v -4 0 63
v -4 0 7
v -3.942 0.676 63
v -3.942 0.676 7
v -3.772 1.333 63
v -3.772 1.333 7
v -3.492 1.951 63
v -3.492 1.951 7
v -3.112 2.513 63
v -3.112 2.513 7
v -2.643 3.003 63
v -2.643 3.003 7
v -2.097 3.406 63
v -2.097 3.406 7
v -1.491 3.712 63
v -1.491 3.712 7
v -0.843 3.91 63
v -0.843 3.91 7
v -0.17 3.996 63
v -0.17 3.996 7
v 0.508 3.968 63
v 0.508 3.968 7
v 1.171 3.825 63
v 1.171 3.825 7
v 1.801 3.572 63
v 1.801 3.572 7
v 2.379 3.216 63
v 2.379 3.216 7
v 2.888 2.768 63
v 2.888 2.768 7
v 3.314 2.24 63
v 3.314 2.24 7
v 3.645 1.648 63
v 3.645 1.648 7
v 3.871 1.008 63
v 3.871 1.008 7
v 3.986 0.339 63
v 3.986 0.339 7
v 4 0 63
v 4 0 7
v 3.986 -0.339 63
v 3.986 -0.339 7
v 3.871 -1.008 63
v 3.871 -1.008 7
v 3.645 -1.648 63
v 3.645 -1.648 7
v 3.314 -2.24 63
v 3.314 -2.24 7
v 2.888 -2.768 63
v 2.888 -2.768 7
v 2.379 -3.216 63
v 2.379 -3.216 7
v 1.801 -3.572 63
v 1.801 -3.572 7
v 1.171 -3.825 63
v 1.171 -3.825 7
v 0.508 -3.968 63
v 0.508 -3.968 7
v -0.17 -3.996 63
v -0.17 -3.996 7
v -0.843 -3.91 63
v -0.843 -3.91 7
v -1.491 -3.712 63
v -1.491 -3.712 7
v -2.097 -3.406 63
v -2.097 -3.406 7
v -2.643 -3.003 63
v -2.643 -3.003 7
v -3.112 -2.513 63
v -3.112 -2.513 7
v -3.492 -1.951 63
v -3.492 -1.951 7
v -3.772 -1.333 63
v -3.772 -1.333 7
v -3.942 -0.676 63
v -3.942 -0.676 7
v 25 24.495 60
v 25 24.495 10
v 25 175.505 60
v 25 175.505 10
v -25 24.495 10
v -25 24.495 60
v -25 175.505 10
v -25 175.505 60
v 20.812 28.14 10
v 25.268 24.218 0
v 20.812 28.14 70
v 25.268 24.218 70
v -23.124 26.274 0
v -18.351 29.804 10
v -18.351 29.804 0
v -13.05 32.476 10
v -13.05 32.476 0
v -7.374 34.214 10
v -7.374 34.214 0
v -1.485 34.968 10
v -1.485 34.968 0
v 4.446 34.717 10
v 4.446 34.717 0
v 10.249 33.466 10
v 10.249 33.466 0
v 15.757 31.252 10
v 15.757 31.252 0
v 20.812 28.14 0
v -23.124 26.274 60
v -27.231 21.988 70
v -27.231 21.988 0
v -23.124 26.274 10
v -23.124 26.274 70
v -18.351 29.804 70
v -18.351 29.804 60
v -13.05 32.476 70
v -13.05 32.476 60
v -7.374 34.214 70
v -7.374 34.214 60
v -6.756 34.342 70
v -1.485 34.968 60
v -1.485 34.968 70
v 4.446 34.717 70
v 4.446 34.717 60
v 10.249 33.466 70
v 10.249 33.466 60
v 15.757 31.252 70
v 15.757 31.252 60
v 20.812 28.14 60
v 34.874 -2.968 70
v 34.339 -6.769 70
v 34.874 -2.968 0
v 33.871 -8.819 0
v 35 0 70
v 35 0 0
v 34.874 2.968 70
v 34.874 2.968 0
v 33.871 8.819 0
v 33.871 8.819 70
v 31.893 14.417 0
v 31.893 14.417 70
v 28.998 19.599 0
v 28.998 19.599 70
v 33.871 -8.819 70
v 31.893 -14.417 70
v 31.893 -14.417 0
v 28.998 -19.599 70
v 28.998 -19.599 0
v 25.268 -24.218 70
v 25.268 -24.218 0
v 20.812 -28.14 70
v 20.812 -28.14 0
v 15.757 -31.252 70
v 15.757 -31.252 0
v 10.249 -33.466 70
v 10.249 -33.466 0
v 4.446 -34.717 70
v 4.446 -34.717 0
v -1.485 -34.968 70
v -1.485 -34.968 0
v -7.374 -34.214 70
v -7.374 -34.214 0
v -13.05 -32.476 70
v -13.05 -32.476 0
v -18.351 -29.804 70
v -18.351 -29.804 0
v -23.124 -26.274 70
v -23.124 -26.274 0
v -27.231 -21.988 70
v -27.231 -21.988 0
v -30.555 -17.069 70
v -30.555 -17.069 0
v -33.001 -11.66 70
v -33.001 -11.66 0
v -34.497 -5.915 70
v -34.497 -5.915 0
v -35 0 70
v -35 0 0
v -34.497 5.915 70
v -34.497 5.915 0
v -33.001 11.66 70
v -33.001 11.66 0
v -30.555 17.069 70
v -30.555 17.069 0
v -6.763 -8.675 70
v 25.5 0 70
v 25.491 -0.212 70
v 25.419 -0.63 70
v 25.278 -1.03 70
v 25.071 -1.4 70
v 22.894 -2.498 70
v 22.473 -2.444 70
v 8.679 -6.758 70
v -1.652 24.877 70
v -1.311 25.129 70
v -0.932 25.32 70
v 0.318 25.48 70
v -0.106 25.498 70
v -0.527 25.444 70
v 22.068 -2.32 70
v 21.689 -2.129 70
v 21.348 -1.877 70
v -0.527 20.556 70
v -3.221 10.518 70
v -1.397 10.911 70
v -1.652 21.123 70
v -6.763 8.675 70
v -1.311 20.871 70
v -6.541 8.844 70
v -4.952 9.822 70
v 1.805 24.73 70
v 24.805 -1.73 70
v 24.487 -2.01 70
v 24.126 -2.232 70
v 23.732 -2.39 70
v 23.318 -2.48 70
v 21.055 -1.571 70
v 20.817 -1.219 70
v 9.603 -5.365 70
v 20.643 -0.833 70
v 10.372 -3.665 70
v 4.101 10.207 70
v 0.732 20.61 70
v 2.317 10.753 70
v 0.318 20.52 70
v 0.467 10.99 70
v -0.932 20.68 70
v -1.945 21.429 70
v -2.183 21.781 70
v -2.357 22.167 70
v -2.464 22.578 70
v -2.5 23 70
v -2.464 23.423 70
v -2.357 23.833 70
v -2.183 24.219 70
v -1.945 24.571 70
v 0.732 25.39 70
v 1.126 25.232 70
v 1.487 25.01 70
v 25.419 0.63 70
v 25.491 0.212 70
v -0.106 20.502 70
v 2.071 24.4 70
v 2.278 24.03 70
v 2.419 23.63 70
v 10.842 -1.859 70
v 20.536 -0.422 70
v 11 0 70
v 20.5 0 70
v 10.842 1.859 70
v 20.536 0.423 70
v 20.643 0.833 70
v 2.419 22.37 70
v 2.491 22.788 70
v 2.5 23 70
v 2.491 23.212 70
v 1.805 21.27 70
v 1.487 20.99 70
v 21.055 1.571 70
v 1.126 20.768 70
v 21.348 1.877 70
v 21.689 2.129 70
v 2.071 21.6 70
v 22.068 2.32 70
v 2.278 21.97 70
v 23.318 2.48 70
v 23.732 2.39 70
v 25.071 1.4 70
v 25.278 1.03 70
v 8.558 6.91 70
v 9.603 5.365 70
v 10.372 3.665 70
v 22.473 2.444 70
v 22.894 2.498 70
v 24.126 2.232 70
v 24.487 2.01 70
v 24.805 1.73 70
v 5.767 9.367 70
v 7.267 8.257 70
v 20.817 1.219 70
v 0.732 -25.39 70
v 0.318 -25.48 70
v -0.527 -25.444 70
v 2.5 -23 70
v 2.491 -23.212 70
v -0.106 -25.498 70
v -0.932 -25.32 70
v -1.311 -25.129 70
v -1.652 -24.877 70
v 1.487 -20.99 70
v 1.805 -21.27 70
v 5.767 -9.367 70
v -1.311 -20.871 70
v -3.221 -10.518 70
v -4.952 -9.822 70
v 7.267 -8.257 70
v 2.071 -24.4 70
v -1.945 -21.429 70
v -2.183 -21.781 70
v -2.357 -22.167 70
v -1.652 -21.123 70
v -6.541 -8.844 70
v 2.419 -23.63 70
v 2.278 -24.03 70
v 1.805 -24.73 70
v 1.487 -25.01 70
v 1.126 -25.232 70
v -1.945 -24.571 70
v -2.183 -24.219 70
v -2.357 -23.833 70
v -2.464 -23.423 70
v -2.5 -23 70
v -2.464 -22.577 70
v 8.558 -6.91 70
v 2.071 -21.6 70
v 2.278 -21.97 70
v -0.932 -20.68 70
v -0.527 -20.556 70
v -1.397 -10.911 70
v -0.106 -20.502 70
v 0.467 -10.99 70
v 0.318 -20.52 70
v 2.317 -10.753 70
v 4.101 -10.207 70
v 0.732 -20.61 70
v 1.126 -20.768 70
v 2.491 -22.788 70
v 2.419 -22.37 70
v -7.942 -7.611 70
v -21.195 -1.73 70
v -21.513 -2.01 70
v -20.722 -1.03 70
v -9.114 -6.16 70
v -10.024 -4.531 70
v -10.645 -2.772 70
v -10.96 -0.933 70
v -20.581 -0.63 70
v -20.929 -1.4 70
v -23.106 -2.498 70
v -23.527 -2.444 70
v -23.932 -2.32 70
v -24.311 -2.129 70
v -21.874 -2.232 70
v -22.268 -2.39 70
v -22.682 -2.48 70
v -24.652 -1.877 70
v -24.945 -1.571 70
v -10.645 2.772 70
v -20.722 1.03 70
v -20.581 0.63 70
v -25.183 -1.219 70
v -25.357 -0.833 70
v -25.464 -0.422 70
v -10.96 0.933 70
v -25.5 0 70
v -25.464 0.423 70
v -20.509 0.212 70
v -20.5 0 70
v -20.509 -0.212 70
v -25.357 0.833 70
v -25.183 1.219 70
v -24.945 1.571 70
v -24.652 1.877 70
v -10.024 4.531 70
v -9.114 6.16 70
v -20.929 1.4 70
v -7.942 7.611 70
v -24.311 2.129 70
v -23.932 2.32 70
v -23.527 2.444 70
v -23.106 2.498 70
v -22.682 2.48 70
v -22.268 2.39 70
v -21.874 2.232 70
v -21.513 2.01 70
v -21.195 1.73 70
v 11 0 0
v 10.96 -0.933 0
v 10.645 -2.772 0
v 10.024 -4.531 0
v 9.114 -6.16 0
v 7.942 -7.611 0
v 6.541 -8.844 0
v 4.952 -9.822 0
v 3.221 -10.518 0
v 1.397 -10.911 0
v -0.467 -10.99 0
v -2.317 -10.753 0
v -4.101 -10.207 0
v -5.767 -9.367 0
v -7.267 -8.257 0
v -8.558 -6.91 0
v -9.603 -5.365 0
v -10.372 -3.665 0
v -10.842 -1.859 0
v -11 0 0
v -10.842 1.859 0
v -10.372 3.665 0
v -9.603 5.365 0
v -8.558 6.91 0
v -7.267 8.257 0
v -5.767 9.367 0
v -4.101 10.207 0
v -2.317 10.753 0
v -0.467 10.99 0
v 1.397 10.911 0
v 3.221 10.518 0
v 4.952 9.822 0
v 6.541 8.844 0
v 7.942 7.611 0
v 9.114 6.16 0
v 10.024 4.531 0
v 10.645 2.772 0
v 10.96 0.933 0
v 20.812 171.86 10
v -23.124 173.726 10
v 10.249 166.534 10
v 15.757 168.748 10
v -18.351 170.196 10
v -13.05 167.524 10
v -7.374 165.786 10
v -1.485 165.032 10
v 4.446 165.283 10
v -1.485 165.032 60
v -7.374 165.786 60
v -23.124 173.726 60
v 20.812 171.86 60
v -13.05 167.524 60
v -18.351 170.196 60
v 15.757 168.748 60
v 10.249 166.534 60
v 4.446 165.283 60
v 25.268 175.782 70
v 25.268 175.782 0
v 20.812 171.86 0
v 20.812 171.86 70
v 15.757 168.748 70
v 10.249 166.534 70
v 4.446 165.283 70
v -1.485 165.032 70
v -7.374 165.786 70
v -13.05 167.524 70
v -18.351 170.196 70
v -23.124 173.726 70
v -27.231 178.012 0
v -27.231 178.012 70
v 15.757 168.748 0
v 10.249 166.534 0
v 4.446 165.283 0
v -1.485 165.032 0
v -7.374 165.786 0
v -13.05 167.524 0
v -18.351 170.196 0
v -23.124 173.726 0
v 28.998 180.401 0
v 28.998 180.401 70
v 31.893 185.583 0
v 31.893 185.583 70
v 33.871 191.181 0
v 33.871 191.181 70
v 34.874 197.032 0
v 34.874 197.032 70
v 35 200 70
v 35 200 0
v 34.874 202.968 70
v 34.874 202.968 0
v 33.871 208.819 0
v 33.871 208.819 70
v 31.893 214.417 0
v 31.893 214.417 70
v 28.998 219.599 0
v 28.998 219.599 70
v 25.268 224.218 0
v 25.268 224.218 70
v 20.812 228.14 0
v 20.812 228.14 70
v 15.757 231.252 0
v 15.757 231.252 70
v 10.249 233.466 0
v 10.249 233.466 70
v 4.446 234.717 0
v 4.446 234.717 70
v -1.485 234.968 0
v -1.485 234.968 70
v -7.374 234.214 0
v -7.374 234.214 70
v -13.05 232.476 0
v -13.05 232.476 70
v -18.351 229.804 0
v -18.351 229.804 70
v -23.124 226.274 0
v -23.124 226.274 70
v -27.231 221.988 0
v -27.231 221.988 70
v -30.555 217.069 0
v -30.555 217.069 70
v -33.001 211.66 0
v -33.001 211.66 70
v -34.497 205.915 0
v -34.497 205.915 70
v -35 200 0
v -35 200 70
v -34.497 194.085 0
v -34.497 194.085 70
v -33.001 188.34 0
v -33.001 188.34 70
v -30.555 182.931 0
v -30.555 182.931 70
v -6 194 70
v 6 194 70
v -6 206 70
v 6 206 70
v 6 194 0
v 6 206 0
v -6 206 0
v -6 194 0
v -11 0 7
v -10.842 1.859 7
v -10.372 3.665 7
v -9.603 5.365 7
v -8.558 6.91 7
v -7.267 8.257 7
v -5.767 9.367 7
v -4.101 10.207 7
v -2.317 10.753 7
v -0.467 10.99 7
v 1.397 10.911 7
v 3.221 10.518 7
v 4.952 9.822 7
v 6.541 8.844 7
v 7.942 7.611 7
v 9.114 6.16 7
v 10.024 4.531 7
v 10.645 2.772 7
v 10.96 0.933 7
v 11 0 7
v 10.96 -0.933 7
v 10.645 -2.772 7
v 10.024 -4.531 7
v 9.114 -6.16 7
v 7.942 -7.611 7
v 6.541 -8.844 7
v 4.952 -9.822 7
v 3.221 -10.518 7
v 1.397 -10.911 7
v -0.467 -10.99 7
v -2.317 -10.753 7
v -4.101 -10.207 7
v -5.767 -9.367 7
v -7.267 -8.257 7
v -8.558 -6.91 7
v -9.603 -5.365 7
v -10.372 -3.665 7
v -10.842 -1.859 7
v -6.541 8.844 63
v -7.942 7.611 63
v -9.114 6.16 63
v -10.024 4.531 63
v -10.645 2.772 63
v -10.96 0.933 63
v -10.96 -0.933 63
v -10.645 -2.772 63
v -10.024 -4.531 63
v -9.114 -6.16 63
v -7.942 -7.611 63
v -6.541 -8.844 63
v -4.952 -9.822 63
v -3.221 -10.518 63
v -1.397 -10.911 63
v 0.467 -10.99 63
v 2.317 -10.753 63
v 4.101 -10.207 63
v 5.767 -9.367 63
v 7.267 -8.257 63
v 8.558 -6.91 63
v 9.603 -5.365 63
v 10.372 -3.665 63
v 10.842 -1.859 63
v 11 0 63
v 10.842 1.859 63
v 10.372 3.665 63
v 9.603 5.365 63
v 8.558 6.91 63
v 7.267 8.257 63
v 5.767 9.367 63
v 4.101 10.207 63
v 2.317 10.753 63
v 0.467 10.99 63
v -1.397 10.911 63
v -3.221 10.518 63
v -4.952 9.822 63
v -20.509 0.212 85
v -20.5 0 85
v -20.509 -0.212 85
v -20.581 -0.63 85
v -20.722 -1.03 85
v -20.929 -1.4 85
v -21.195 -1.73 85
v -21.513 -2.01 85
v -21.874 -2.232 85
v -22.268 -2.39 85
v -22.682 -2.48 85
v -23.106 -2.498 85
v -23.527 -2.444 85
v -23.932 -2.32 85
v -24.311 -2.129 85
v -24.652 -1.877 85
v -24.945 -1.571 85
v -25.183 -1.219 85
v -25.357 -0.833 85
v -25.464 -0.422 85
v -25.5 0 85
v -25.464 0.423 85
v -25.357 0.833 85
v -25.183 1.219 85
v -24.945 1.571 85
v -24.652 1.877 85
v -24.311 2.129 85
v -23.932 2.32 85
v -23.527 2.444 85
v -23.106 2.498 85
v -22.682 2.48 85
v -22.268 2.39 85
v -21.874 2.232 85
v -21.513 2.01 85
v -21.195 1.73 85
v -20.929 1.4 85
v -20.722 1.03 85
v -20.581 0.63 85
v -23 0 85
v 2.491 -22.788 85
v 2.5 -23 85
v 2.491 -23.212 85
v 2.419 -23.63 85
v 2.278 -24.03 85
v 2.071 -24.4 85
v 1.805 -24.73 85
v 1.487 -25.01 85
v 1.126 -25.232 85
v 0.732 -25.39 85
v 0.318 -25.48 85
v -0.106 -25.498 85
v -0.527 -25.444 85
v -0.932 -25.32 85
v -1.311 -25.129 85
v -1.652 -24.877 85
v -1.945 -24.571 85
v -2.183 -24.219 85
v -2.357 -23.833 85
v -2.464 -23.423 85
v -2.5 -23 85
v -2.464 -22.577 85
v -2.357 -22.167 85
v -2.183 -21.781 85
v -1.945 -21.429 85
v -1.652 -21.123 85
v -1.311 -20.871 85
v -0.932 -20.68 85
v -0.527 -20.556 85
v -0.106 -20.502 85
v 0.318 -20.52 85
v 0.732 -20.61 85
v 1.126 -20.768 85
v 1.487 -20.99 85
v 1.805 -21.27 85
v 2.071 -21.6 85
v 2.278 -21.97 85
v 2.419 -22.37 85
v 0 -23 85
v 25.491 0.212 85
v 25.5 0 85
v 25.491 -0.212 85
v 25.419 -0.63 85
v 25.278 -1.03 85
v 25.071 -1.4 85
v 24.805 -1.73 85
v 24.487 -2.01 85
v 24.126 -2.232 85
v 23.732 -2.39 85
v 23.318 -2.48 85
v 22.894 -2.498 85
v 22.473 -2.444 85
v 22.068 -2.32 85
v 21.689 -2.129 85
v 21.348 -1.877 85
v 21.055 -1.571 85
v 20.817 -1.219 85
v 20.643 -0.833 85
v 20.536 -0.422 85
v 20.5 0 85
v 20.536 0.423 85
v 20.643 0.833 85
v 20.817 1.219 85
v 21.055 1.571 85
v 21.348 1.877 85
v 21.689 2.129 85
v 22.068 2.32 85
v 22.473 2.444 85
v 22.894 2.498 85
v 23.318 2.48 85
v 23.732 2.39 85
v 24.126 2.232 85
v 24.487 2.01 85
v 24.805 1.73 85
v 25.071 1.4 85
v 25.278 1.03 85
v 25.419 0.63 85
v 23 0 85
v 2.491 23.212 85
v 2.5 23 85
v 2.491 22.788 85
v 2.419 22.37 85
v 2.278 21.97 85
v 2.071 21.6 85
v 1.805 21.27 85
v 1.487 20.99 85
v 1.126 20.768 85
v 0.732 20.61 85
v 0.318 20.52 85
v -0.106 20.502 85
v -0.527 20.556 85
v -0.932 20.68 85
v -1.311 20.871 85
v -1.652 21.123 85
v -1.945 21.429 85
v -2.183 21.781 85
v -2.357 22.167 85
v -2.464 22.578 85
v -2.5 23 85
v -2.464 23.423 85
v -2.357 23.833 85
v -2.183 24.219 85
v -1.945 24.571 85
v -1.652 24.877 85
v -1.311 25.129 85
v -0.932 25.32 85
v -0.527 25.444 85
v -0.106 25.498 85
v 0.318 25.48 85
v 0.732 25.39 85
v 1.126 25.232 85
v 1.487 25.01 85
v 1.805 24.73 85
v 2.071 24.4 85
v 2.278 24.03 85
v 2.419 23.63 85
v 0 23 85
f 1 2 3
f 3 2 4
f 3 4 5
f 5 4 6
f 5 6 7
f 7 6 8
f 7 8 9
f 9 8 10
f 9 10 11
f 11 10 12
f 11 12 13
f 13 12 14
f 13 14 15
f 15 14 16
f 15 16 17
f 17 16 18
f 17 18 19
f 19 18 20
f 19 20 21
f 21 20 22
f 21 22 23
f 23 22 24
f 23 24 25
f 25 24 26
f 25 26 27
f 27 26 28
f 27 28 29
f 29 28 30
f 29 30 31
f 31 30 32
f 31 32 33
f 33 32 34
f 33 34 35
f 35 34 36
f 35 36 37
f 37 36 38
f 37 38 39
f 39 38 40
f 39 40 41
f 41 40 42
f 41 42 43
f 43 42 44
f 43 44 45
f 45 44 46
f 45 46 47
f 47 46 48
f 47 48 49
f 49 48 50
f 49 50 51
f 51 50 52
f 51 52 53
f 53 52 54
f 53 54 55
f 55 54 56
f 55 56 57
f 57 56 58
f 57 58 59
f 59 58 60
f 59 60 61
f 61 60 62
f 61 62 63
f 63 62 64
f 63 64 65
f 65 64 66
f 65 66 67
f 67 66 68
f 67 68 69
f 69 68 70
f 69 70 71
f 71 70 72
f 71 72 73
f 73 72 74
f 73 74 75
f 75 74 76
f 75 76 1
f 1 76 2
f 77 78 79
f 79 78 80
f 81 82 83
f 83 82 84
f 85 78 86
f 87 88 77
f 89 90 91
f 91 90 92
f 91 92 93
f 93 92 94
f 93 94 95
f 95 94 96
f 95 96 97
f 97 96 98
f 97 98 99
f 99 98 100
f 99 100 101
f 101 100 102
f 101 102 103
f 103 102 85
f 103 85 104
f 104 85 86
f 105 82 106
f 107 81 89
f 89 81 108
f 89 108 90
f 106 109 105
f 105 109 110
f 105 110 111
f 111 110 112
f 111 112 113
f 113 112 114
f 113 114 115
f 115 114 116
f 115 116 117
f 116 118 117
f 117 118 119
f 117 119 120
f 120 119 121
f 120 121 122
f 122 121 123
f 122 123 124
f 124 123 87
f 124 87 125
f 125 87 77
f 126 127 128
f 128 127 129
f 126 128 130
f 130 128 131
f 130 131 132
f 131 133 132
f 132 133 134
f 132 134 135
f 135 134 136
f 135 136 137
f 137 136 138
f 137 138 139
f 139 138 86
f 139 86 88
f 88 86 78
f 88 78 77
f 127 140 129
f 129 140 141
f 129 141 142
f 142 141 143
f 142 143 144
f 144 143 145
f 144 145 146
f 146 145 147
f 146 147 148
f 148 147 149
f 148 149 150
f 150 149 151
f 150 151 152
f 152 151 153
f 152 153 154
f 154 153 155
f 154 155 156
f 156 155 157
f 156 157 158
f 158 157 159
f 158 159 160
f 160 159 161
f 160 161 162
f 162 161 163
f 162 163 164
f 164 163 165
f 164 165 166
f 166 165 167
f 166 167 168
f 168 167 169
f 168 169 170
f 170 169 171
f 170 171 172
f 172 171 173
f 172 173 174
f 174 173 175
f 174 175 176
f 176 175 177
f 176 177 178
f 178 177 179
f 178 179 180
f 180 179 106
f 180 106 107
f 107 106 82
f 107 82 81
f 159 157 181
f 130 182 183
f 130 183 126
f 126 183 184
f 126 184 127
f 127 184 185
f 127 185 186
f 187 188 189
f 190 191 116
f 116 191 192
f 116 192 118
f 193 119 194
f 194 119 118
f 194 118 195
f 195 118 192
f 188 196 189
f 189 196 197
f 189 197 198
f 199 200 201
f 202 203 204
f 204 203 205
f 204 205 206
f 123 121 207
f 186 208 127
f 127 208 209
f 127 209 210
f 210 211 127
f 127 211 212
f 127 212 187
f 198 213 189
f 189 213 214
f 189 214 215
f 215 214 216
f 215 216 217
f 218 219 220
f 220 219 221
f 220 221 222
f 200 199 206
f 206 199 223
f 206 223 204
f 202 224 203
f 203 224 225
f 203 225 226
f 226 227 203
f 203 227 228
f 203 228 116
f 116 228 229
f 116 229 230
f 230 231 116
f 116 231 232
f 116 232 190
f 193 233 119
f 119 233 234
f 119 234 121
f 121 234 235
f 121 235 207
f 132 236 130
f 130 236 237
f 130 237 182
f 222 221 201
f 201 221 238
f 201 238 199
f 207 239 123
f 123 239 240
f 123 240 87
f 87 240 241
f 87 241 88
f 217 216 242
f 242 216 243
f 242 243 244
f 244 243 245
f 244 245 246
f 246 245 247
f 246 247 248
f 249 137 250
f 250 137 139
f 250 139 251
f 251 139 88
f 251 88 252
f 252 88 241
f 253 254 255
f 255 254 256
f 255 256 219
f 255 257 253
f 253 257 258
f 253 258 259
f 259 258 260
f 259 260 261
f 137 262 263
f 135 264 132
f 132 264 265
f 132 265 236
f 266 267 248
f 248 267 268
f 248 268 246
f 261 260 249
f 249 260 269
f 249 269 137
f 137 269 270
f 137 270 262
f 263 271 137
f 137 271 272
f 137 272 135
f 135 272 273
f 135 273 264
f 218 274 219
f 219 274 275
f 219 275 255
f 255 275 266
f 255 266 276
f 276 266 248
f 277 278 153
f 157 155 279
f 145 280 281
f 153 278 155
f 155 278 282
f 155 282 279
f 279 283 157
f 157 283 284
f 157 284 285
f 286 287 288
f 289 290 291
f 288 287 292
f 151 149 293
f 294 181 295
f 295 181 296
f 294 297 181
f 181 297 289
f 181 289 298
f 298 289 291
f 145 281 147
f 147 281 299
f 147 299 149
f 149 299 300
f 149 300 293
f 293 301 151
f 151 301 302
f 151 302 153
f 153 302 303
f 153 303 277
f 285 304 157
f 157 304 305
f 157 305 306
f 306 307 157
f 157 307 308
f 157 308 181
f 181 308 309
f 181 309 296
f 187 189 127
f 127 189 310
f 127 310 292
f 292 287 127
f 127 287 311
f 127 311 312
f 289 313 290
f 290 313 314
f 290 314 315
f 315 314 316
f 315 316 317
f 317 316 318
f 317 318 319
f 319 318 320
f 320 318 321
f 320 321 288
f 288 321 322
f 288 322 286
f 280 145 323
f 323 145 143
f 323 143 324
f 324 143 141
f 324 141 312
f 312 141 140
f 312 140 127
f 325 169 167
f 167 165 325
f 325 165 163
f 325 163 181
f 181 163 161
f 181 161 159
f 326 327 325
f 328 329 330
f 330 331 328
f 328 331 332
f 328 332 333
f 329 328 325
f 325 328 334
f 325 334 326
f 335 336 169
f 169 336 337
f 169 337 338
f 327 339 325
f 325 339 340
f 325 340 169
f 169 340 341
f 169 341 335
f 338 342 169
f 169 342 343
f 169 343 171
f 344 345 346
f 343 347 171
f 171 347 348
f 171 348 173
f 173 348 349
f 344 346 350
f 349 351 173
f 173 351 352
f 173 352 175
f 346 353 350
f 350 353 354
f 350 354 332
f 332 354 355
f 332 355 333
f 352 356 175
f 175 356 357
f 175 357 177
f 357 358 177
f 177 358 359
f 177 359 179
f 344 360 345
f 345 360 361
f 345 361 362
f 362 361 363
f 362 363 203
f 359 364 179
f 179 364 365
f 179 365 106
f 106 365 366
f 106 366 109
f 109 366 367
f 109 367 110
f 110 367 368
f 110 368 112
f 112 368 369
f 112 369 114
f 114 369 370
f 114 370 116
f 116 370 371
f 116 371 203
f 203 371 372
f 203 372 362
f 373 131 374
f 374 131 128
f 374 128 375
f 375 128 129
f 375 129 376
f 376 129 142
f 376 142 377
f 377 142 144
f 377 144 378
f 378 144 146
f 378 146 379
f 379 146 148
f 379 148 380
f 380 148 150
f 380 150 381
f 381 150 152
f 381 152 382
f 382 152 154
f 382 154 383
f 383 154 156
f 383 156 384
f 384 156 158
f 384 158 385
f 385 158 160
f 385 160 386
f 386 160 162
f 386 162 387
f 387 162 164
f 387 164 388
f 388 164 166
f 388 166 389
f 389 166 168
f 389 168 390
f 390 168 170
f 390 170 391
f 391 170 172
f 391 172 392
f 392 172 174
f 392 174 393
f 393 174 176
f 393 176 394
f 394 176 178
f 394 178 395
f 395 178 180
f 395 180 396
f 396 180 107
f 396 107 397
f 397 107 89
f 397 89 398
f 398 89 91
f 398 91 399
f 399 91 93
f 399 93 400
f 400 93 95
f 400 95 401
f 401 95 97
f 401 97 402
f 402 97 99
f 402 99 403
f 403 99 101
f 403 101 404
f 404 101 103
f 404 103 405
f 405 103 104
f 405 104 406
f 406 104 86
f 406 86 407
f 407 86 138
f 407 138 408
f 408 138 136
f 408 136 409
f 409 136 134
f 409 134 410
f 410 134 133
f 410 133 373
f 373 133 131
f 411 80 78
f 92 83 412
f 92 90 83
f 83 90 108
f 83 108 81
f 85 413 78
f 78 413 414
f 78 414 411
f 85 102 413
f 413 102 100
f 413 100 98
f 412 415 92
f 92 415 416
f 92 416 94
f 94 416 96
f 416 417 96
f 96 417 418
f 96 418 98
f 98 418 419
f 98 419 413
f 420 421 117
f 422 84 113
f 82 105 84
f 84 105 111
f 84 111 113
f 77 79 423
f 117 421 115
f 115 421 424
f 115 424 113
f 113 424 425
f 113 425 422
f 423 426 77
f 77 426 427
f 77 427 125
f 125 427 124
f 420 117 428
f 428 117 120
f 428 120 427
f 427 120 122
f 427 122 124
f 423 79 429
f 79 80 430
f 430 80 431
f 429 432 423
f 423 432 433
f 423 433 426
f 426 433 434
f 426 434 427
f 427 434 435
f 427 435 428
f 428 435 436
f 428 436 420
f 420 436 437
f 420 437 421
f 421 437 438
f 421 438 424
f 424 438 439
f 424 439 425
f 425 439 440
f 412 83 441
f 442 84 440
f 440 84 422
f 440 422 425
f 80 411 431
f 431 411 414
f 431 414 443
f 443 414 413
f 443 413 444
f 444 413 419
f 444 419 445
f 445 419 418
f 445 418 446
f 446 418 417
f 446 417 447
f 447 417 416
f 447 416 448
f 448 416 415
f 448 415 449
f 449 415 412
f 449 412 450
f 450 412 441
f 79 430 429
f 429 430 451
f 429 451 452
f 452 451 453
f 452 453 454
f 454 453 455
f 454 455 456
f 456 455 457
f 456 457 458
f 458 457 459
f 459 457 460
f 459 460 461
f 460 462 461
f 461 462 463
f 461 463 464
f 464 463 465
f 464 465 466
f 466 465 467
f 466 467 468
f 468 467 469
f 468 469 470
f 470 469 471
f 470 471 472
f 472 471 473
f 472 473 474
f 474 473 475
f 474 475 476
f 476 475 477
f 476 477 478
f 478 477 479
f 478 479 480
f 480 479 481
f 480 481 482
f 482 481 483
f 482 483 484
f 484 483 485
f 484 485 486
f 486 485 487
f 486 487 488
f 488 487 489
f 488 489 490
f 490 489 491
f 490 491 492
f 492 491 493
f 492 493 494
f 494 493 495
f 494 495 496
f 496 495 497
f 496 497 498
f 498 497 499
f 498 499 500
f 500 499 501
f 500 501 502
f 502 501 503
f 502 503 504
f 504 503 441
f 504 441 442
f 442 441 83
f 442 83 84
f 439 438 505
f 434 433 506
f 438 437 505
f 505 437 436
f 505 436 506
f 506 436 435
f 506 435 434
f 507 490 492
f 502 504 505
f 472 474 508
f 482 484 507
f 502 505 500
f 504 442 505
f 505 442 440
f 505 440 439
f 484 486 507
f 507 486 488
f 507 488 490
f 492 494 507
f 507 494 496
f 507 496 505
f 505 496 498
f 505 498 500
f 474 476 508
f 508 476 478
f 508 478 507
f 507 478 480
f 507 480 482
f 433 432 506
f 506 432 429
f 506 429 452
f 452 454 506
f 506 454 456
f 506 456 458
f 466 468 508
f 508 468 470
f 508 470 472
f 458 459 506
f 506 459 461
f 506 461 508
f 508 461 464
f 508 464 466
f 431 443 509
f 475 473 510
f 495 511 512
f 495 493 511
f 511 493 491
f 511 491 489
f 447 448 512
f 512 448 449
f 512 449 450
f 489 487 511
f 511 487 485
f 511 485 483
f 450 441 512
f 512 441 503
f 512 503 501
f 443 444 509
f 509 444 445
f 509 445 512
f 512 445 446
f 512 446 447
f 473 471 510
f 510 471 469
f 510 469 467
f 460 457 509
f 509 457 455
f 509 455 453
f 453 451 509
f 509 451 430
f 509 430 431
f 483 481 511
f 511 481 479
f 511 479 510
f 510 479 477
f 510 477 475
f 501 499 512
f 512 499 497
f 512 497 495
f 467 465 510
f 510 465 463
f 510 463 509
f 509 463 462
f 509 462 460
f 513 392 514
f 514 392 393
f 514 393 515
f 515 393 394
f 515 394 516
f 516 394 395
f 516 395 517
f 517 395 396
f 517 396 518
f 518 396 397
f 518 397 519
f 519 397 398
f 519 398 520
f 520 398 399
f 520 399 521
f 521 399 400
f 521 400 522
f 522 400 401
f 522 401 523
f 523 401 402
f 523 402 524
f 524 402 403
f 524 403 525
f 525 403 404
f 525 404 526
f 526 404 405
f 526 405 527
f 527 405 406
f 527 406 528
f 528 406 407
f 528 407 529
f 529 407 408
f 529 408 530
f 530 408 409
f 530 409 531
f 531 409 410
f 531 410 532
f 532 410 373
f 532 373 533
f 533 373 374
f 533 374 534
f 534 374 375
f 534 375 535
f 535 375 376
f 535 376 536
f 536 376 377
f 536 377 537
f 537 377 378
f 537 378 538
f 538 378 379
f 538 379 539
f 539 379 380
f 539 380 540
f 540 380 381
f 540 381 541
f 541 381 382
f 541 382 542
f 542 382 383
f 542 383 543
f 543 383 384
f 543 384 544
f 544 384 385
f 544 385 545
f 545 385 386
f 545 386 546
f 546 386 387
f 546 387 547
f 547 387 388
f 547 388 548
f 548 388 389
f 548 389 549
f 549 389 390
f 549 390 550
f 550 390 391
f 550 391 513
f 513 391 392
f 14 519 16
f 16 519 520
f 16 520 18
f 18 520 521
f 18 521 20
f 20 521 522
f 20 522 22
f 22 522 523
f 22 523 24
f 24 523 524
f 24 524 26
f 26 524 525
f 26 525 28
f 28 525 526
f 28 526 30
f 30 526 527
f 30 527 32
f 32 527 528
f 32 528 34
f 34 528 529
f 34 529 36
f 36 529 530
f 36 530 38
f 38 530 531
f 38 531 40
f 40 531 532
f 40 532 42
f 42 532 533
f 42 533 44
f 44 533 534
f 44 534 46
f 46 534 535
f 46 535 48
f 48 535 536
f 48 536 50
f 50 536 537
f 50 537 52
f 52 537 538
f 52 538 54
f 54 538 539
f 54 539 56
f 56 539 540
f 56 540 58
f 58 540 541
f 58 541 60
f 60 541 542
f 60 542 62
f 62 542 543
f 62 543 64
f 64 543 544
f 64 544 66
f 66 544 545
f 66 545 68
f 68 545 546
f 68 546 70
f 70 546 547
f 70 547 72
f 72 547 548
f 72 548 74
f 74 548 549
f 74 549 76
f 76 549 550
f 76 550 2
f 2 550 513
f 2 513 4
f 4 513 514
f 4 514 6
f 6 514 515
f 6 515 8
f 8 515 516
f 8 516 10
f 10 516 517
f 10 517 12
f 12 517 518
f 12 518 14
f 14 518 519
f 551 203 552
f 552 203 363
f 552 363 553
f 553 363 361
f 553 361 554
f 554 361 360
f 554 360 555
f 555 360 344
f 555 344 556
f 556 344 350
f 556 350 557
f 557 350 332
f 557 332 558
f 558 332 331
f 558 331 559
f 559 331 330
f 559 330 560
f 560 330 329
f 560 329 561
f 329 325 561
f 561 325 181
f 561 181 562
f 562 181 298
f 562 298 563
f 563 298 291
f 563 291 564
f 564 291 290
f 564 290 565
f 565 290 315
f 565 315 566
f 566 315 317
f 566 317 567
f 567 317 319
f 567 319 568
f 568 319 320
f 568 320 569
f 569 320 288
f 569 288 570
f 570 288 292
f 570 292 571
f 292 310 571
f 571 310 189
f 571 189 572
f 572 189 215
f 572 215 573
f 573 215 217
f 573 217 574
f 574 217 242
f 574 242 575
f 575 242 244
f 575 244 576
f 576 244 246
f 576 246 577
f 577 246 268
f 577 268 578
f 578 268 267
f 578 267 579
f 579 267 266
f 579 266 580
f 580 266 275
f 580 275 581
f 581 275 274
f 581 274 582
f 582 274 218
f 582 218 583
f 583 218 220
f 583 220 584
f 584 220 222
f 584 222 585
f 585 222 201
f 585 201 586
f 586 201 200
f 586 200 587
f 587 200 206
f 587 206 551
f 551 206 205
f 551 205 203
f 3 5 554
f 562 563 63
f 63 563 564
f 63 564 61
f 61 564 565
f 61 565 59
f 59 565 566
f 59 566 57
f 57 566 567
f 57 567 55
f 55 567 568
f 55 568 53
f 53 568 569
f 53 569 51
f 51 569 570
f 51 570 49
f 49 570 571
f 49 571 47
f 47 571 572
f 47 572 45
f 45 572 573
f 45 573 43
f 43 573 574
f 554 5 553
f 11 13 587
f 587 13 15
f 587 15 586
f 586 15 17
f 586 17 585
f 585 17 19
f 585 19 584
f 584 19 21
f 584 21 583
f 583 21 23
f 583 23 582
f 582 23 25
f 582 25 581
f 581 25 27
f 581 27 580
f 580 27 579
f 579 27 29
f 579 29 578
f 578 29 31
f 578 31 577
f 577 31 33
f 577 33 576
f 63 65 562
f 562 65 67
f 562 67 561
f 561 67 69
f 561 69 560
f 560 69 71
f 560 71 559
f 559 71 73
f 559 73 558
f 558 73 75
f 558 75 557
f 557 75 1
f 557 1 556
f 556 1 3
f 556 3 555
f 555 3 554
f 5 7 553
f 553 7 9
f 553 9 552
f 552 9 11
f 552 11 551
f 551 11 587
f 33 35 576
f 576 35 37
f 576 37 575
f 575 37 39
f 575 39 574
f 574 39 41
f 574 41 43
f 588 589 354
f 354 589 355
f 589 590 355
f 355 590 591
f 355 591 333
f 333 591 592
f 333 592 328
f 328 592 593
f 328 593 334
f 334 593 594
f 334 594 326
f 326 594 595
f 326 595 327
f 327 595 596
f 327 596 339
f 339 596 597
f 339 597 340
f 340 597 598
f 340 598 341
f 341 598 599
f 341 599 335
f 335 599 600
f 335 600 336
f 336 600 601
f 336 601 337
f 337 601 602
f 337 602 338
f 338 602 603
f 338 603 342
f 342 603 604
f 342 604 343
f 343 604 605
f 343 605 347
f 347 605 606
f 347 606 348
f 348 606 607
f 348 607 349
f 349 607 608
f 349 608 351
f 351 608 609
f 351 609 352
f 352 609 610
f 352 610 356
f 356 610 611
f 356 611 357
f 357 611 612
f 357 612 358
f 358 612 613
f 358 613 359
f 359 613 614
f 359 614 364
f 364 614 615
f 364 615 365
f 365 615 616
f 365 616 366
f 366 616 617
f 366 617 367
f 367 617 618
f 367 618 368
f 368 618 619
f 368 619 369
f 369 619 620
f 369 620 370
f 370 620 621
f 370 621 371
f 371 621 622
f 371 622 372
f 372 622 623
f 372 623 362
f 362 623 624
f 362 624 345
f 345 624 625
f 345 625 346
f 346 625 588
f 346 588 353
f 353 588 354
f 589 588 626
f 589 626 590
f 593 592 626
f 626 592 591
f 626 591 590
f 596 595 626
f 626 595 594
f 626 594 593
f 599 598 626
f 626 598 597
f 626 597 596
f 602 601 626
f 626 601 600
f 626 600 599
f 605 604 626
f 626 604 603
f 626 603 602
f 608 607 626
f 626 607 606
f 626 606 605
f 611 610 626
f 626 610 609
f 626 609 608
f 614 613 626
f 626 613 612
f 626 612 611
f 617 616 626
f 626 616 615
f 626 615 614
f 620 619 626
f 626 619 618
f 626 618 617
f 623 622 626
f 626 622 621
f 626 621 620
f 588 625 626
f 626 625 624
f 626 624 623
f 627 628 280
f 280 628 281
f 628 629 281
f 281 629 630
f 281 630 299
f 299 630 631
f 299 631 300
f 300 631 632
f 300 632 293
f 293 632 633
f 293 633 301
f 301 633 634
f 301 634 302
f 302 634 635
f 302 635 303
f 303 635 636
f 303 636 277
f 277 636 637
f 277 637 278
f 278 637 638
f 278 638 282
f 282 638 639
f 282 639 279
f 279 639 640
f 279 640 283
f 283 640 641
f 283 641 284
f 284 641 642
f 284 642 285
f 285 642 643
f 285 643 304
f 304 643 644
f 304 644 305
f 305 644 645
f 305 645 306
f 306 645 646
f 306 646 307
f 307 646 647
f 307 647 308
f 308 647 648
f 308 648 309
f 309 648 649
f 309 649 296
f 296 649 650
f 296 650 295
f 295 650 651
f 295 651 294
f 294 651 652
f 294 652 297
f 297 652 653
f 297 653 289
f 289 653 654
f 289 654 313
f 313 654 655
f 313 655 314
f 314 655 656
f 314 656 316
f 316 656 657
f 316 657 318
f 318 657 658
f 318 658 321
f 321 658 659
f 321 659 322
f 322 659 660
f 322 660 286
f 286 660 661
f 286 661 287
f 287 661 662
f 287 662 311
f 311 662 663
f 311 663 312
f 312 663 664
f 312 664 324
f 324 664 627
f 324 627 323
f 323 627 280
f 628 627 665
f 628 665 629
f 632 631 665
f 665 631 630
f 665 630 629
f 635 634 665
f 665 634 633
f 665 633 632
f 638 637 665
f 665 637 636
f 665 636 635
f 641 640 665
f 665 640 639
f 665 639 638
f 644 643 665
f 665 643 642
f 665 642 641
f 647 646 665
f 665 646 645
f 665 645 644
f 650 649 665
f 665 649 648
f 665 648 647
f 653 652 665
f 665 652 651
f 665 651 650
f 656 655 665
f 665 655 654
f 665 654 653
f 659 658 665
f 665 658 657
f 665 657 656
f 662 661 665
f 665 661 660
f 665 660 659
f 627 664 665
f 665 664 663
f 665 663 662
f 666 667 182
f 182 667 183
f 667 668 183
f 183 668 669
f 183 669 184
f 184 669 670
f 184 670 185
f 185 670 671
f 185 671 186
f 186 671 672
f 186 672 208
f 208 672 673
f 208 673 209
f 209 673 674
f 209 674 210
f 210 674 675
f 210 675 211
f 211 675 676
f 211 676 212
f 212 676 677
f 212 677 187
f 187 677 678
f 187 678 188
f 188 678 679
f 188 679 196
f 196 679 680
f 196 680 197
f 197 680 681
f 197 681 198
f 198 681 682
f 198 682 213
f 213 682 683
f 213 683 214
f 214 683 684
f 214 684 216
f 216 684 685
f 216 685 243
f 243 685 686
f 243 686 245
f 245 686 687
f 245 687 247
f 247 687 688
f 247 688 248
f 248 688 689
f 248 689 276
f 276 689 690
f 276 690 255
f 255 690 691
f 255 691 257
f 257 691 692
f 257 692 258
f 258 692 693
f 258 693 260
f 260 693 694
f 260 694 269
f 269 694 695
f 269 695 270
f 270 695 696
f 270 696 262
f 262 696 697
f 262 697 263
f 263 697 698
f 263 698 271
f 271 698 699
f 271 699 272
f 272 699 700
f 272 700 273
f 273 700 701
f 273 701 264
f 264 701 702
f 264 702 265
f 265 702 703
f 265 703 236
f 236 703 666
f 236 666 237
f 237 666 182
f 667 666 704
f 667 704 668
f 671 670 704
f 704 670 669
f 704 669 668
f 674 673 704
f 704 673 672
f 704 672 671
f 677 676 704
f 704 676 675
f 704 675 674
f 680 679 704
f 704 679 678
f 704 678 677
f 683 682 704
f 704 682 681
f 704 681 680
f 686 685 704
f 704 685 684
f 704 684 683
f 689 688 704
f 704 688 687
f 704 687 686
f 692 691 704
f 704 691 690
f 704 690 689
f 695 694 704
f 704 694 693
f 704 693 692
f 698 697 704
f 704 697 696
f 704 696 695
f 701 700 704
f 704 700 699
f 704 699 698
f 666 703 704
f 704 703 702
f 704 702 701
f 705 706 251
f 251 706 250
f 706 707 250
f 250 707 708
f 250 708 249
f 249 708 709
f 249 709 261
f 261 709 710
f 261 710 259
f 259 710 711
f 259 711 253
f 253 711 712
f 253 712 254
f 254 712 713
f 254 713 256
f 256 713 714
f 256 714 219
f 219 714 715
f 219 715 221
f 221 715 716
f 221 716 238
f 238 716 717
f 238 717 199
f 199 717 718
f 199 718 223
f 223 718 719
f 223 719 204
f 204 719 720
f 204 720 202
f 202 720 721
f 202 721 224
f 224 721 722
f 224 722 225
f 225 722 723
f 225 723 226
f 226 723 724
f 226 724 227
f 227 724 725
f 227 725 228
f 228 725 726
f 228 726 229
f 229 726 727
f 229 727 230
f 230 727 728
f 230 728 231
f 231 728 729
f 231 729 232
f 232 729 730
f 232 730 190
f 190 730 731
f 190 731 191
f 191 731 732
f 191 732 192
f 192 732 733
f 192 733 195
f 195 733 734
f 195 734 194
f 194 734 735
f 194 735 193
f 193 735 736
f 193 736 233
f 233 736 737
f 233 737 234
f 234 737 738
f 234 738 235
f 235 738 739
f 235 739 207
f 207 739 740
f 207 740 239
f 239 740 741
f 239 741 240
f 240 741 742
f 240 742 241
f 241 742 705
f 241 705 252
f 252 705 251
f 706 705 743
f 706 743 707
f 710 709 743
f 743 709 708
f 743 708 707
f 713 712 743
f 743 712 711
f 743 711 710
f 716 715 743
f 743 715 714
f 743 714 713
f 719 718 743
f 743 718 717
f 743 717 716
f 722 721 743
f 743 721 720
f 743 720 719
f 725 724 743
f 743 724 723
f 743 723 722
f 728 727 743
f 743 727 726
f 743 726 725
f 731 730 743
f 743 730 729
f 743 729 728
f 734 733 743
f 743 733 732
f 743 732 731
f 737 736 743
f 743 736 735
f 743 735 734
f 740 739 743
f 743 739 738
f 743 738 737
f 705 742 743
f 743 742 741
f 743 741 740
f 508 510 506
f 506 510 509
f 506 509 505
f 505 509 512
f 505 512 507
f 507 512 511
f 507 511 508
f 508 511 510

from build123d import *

# Parameters (mm, degrees)
CROQUIS1_R              = 35
SALIENTE_EXTRUIR1_DEPTH = 70
CROQUIS2_W              = 50
CROQUIS2_H              = 50
SALIENTE_EXTRUIR2_DEPTH = 200
CROQUIS4_R              = 35
SALIENTE_EXTRUIR4_DEPTH = 70
CROQUIS5_R              = 4
CORTAR_EXTRUIR1_DEPTH   = 150
CROQUIS6_R              = 11
CORTAR_EXTRUIR3_DEPTH   = 7
CORTAR_EXTRUIR4_START   = -7
CROQUIS7_R              = 11
CORTAR_EXTRUIR4_DEPTH   = 7
CROQUIS8_R              = 2.5
SALIENTE_EXTRUIR5_DEPTH = 15
CROQUIS9_W              = 12
CROQUIS9_H              = 12
CORTAR_EXTRUIR5_DEPTH   = 152


with BuildPart() as part:
    # Croquis1 → Saliente-Extruir1 (new body)
    with BuildSketch(Plane.XY):
        Circle(CROQUIS1_R)
    extrude(amount=SALIENTE_EXTRUIR1_DEPTH)

    # Croquis2 → Saliente-Extruir2 (add)
    with BuildSketch(Plane(origin=(0, 0, 0), x_dir=(1, 0, 0), z_dir=(0, 1, 0))):
        with Locations((0, -35)):
            Rectangle(CROQUIS2_W, CROQUIS2_H)
    extrude(amount=SALIENTE_EXTRUIR2_DEPTH)

    # Croquis4 → Saliente-Extruir4 (add)
    with BuildSketch(Plane.XY):
        with Locations((0, 200)):
            Circle(CROQUIS4_R)
    extrude(amount=SALIENTE_EXTRUIR4_DEPTH)

    # Croquis5 → Cortar-Extruir1 (cut)
    with BuildSketch(Plane.XY):
        Circle(CROQUIS5_R)
    extrude(amount=CORTAR_EXTRUIR1_DEPTH, mode=Mode.SUBTRACT)

    # Croquis6 → Cortar-Extruir3 (cut)
    with BuildSketch(Plane.XY):
        Circle(CROQUIS6_R)
    extrude(amount=CORTAR_EXTRUIR3_DEPTH, mode=Mode.SUBTRACT)

    # Croquis7 → Cortar-Extruir4 (cut)
    with BuildSketch(Plane.XY.offset(70).offset(CORTAR_EXTRUIR4_START)):
        Circle(CROQUIS7_R)
    extrude(amount=CORTAR_EXTRUIR4_DEPTH, mode=Mode.SUBTRACT)

    # Croquis8 → Saliente-Extruir5 (add)
    with BuildSketch(Plane.XY.offset(70)):
        with Locations((-23, 0)):
            Circle(CROQUIS8_R)
        with Locations((0, -23)):
            Circle(CROQUIS8_R)
        with Locations((23, 0)):
            Circle(CROQUIS8_R)
        with Locations((0, 23)):
            Circle(CROQUIS8_R)
    extrude(amount=SALIENTE_EXTRUIR5_DEPTH)

    # Croquis9 → Cortar-Extruir5 (cut)
    with BuildSketch(Plane.XY.offset(70)):
        with Locations((0, 200)):
            Rectangle(CROQUIS9_W, CROQUIS9_H)
    extrude(amount=-CORTAR_EXTRUIR5_DEPTH, mode=Mode.SUBTRACT)


solid = part.part
